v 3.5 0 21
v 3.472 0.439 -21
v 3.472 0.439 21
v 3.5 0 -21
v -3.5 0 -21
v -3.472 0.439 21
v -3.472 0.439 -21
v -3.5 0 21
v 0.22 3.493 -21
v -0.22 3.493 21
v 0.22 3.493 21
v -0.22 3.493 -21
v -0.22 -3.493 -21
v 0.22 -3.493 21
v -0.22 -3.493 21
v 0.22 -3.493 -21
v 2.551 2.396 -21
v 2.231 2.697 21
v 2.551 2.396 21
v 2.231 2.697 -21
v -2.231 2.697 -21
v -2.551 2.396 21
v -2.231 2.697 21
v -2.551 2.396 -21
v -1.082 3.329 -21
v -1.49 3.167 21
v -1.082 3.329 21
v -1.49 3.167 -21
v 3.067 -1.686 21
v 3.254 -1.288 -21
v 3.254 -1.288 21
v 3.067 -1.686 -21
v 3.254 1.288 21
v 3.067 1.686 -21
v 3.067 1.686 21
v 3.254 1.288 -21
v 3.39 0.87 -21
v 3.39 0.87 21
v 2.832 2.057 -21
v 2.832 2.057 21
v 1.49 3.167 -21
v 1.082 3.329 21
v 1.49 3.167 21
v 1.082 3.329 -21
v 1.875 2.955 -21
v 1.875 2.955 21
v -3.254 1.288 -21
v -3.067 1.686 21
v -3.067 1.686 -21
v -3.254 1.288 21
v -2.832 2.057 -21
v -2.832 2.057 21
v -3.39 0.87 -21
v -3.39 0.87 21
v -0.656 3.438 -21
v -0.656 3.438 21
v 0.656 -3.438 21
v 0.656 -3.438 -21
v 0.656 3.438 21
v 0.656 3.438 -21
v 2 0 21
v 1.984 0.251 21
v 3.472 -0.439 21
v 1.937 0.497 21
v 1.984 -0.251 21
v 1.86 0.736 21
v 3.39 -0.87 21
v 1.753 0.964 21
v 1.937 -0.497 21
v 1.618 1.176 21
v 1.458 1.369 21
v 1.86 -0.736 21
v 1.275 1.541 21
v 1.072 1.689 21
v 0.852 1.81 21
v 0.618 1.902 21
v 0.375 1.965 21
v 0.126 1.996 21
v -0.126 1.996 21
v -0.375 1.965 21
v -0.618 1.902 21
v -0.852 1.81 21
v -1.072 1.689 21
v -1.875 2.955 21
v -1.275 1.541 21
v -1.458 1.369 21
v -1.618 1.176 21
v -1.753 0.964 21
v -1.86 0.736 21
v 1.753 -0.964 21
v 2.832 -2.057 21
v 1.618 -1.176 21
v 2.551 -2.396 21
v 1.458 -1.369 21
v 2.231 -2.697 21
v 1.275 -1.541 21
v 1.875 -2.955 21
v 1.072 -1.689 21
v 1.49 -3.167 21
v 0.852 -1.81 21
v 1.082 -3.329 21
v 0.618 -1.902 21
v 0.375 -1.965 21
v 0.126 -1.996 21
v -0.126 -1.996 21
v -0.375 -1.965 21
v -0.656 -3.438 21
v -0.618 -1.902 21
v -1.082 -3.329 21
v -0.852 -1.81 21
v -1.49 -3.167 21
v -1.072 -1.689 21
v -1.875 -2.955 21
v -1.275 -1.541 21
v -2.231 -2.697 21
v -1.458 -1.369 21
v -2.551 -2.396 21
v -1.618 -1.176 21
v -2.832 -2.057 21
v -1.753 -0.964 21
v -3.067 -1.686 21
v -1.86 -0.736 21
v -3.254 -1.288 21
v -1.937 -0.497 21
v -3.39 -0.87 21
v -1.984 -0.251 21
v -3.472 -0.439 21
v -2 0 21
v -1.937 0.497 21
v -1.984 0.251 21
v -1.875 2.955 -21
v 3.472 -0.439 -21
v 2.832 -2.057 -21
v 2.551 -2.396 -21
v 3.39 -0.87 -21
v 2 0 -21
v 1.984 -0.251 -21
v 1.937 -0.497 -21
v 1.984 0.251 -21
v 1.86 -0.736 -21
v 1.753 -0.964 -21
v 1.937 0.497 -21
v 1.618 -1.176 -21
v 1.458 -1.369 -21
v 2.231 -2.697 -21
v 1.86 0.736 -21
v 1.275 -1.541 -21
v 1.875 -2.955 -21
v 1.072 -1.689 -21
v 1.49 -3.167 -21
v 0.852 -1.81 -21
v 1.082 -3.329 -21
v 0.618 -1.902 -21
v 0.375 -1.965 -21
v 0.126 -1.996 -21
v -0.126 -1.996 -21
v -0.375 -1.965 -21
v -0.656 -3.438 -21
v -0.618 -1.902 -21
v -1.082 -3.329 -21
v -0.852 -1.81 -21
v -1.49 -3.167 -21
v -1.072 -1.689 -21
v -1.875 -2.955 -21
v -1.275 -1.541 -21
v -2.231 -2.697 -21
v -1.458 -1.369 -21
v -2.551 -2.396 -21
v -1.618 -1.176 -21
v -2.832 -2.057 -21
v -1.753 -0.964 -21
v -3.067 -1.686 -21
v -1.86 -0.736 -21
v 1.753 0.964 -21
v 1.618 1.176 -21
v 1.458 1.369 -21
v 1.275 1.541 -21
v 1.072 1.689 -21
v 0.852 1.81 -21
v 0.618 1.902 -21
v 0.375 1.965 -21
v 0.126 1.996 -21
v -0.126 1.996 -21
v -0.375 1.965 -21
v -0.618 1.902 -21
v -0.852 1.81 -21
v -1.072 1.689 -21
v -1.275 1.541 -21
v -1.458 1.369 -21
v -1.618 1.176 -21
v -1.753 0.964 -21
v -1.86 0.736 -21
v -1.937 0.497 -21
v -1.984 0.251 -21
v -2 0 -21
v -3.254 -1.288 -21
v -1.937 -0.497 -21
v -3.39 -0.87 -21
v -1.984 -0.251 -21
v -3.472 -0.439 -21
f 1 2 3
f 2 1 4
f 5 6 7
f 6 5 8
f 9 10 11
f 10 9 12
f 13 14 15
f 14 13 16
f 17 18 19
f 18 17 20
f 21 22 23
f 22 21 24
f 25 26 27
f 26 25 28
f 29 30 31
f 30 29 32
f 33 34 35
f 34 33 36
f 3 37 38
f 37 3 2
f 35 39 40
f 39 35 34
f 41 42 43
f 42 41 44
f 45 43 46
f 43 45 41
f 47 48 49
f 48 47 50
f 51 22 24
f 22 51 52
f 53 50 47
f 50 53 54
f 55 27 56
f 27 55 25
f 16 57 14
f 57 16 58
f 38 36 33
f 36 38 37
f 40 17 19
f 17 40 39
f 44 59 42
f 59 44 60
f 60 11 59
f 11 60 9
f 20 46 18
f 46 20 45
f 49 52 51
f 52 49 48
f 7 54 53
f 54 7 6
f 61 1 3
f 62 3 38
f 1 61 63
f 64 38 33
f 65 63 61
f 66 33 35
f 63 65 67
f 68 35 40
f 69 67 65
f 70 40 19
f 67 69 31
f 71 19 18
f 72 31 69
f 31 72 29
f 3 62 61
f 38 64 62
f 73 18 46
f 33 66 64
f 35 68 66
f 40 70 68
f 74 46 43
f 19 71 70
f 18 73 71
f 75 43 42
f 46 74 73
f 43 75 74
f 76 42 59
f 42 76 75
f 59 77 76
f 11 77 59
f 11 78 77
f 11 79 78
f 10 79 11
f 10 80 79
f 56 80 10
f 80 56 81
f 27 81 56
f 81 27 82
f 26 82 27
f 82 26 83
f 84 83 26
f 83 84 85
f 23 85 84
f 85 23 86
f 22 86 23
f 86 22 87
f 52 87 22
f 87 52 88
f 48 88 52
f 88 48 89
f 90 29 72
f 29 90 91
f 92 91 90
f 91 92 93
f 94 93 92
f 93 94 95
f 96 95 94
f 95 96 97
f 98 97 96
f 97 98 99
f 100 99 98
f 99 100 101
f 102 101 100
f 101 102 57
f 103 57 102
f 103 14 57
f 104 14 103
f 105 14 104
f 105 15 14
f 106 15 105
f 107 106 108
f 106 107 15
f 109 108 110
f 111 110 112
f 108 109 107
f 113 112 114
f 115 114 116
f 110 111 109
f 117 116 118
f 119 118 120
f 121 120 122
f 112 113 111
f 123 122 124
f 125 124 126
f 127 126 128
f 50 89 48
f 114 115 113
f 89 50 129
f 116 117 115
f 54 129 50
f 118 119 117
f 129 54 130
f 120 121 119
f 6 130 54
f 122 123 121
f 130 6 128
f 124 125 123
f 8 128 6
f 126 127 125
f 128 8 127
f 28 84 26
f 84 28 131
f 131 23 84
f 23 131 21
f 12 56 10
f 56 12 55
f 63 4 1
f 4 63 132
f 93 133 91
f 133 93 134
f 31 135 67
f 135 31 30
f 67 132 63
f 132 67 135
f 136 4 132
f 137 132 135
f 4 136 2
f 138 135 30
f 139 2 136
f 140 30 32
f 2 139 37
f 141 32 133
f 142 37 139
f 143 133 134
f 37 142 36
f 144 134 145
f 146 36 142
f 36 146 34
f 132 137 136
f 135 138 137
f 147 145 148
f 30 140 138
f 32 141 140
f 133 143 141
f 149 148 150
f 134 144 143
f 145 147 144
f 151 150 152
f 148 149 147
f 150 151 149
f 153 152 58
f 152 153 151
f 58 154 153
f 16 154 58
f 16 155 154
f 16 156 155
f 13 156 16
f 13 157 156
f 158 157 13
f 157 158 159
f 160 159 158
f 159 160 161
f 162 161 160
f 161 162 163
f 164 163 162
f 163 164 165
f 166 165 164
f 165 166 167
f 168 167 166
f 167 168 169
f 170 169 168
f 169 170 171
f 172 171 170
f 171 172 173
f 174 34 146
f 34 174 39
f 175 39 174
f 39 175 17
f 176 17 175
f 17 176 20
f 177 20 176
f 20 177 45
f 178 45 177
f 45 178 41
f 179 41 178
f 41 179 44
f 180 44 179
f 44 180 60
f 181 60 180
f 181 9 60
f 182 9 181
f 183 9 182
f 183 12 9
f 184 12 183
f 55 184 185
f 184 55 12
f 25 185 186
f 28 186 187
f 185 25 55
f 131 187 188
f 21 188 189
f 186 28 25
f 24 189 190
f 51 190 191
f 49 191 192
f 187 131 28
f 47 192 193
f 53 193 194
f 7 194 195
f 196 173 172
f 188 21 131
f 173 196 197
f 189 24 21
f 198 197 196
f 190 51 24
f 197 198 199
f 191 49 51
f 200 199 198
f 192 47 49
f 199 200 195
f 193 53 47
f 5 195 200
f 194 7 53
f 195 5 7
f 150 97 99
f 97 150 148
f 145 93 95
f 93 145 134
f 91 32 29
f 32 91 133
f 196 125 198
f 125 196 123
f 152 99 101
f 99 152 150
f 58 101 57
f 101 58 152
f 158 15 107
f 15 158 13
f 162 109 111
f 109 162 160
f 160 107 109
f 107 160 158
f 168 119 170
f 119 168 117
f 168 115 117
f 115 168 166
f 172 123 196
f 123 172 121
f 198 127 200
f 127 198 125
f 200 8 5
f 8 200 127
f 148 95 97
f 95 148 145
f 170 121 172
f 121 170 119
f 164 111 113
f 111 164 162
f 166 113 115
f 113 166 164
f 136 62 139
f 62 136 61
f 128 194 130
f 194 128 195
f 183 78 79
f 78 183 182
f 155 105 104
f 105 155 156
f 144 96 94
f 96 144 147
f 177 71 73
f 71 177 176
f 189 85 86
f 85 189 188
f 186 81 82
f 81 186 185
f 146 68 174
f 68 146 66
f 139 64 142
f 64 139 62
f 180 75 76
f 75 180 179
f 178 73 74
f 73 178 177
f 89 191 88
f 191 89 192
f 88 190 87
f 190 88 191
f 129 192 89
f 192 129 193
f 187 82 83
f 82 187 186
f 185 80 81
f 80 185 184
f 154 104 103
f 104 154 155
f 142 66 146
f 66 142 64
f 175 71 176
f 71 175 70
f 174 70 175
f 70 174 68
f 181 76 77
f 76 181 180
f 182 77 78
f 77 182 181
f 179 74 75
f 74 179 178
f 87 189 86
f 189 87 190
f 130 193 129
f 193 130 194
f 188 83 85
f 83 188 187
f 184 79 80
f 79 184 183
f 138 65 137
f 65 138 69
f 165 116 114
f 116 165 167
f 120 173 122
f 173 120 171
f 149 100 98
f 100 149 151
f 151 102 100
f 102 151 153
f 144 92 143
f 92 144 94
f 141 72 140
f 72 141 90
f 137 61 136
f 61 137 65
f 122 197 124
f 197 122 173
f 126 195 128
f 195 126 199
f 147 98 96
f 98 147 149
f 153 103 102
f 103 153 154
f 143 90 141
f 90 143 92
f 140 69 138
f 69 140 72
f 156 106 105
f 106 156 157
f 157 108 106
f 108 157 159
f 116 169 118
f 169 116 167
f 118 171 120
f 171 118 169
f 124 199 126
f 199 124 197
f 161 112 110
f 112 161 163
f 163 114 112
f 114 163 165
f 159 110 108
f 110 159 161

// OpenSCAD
$fn = 50;


difference() {
	union() {
		translate(v = [0, 0, -21.0000000000]) {
			cylinder(h = 42, r = 3.5000000000);
		}
	}
	union() {
		translate(v = [0, 0, -100.0000000000]) {
			cylinder(h = 200, r = 2.0000000000);
		}
	}
}
